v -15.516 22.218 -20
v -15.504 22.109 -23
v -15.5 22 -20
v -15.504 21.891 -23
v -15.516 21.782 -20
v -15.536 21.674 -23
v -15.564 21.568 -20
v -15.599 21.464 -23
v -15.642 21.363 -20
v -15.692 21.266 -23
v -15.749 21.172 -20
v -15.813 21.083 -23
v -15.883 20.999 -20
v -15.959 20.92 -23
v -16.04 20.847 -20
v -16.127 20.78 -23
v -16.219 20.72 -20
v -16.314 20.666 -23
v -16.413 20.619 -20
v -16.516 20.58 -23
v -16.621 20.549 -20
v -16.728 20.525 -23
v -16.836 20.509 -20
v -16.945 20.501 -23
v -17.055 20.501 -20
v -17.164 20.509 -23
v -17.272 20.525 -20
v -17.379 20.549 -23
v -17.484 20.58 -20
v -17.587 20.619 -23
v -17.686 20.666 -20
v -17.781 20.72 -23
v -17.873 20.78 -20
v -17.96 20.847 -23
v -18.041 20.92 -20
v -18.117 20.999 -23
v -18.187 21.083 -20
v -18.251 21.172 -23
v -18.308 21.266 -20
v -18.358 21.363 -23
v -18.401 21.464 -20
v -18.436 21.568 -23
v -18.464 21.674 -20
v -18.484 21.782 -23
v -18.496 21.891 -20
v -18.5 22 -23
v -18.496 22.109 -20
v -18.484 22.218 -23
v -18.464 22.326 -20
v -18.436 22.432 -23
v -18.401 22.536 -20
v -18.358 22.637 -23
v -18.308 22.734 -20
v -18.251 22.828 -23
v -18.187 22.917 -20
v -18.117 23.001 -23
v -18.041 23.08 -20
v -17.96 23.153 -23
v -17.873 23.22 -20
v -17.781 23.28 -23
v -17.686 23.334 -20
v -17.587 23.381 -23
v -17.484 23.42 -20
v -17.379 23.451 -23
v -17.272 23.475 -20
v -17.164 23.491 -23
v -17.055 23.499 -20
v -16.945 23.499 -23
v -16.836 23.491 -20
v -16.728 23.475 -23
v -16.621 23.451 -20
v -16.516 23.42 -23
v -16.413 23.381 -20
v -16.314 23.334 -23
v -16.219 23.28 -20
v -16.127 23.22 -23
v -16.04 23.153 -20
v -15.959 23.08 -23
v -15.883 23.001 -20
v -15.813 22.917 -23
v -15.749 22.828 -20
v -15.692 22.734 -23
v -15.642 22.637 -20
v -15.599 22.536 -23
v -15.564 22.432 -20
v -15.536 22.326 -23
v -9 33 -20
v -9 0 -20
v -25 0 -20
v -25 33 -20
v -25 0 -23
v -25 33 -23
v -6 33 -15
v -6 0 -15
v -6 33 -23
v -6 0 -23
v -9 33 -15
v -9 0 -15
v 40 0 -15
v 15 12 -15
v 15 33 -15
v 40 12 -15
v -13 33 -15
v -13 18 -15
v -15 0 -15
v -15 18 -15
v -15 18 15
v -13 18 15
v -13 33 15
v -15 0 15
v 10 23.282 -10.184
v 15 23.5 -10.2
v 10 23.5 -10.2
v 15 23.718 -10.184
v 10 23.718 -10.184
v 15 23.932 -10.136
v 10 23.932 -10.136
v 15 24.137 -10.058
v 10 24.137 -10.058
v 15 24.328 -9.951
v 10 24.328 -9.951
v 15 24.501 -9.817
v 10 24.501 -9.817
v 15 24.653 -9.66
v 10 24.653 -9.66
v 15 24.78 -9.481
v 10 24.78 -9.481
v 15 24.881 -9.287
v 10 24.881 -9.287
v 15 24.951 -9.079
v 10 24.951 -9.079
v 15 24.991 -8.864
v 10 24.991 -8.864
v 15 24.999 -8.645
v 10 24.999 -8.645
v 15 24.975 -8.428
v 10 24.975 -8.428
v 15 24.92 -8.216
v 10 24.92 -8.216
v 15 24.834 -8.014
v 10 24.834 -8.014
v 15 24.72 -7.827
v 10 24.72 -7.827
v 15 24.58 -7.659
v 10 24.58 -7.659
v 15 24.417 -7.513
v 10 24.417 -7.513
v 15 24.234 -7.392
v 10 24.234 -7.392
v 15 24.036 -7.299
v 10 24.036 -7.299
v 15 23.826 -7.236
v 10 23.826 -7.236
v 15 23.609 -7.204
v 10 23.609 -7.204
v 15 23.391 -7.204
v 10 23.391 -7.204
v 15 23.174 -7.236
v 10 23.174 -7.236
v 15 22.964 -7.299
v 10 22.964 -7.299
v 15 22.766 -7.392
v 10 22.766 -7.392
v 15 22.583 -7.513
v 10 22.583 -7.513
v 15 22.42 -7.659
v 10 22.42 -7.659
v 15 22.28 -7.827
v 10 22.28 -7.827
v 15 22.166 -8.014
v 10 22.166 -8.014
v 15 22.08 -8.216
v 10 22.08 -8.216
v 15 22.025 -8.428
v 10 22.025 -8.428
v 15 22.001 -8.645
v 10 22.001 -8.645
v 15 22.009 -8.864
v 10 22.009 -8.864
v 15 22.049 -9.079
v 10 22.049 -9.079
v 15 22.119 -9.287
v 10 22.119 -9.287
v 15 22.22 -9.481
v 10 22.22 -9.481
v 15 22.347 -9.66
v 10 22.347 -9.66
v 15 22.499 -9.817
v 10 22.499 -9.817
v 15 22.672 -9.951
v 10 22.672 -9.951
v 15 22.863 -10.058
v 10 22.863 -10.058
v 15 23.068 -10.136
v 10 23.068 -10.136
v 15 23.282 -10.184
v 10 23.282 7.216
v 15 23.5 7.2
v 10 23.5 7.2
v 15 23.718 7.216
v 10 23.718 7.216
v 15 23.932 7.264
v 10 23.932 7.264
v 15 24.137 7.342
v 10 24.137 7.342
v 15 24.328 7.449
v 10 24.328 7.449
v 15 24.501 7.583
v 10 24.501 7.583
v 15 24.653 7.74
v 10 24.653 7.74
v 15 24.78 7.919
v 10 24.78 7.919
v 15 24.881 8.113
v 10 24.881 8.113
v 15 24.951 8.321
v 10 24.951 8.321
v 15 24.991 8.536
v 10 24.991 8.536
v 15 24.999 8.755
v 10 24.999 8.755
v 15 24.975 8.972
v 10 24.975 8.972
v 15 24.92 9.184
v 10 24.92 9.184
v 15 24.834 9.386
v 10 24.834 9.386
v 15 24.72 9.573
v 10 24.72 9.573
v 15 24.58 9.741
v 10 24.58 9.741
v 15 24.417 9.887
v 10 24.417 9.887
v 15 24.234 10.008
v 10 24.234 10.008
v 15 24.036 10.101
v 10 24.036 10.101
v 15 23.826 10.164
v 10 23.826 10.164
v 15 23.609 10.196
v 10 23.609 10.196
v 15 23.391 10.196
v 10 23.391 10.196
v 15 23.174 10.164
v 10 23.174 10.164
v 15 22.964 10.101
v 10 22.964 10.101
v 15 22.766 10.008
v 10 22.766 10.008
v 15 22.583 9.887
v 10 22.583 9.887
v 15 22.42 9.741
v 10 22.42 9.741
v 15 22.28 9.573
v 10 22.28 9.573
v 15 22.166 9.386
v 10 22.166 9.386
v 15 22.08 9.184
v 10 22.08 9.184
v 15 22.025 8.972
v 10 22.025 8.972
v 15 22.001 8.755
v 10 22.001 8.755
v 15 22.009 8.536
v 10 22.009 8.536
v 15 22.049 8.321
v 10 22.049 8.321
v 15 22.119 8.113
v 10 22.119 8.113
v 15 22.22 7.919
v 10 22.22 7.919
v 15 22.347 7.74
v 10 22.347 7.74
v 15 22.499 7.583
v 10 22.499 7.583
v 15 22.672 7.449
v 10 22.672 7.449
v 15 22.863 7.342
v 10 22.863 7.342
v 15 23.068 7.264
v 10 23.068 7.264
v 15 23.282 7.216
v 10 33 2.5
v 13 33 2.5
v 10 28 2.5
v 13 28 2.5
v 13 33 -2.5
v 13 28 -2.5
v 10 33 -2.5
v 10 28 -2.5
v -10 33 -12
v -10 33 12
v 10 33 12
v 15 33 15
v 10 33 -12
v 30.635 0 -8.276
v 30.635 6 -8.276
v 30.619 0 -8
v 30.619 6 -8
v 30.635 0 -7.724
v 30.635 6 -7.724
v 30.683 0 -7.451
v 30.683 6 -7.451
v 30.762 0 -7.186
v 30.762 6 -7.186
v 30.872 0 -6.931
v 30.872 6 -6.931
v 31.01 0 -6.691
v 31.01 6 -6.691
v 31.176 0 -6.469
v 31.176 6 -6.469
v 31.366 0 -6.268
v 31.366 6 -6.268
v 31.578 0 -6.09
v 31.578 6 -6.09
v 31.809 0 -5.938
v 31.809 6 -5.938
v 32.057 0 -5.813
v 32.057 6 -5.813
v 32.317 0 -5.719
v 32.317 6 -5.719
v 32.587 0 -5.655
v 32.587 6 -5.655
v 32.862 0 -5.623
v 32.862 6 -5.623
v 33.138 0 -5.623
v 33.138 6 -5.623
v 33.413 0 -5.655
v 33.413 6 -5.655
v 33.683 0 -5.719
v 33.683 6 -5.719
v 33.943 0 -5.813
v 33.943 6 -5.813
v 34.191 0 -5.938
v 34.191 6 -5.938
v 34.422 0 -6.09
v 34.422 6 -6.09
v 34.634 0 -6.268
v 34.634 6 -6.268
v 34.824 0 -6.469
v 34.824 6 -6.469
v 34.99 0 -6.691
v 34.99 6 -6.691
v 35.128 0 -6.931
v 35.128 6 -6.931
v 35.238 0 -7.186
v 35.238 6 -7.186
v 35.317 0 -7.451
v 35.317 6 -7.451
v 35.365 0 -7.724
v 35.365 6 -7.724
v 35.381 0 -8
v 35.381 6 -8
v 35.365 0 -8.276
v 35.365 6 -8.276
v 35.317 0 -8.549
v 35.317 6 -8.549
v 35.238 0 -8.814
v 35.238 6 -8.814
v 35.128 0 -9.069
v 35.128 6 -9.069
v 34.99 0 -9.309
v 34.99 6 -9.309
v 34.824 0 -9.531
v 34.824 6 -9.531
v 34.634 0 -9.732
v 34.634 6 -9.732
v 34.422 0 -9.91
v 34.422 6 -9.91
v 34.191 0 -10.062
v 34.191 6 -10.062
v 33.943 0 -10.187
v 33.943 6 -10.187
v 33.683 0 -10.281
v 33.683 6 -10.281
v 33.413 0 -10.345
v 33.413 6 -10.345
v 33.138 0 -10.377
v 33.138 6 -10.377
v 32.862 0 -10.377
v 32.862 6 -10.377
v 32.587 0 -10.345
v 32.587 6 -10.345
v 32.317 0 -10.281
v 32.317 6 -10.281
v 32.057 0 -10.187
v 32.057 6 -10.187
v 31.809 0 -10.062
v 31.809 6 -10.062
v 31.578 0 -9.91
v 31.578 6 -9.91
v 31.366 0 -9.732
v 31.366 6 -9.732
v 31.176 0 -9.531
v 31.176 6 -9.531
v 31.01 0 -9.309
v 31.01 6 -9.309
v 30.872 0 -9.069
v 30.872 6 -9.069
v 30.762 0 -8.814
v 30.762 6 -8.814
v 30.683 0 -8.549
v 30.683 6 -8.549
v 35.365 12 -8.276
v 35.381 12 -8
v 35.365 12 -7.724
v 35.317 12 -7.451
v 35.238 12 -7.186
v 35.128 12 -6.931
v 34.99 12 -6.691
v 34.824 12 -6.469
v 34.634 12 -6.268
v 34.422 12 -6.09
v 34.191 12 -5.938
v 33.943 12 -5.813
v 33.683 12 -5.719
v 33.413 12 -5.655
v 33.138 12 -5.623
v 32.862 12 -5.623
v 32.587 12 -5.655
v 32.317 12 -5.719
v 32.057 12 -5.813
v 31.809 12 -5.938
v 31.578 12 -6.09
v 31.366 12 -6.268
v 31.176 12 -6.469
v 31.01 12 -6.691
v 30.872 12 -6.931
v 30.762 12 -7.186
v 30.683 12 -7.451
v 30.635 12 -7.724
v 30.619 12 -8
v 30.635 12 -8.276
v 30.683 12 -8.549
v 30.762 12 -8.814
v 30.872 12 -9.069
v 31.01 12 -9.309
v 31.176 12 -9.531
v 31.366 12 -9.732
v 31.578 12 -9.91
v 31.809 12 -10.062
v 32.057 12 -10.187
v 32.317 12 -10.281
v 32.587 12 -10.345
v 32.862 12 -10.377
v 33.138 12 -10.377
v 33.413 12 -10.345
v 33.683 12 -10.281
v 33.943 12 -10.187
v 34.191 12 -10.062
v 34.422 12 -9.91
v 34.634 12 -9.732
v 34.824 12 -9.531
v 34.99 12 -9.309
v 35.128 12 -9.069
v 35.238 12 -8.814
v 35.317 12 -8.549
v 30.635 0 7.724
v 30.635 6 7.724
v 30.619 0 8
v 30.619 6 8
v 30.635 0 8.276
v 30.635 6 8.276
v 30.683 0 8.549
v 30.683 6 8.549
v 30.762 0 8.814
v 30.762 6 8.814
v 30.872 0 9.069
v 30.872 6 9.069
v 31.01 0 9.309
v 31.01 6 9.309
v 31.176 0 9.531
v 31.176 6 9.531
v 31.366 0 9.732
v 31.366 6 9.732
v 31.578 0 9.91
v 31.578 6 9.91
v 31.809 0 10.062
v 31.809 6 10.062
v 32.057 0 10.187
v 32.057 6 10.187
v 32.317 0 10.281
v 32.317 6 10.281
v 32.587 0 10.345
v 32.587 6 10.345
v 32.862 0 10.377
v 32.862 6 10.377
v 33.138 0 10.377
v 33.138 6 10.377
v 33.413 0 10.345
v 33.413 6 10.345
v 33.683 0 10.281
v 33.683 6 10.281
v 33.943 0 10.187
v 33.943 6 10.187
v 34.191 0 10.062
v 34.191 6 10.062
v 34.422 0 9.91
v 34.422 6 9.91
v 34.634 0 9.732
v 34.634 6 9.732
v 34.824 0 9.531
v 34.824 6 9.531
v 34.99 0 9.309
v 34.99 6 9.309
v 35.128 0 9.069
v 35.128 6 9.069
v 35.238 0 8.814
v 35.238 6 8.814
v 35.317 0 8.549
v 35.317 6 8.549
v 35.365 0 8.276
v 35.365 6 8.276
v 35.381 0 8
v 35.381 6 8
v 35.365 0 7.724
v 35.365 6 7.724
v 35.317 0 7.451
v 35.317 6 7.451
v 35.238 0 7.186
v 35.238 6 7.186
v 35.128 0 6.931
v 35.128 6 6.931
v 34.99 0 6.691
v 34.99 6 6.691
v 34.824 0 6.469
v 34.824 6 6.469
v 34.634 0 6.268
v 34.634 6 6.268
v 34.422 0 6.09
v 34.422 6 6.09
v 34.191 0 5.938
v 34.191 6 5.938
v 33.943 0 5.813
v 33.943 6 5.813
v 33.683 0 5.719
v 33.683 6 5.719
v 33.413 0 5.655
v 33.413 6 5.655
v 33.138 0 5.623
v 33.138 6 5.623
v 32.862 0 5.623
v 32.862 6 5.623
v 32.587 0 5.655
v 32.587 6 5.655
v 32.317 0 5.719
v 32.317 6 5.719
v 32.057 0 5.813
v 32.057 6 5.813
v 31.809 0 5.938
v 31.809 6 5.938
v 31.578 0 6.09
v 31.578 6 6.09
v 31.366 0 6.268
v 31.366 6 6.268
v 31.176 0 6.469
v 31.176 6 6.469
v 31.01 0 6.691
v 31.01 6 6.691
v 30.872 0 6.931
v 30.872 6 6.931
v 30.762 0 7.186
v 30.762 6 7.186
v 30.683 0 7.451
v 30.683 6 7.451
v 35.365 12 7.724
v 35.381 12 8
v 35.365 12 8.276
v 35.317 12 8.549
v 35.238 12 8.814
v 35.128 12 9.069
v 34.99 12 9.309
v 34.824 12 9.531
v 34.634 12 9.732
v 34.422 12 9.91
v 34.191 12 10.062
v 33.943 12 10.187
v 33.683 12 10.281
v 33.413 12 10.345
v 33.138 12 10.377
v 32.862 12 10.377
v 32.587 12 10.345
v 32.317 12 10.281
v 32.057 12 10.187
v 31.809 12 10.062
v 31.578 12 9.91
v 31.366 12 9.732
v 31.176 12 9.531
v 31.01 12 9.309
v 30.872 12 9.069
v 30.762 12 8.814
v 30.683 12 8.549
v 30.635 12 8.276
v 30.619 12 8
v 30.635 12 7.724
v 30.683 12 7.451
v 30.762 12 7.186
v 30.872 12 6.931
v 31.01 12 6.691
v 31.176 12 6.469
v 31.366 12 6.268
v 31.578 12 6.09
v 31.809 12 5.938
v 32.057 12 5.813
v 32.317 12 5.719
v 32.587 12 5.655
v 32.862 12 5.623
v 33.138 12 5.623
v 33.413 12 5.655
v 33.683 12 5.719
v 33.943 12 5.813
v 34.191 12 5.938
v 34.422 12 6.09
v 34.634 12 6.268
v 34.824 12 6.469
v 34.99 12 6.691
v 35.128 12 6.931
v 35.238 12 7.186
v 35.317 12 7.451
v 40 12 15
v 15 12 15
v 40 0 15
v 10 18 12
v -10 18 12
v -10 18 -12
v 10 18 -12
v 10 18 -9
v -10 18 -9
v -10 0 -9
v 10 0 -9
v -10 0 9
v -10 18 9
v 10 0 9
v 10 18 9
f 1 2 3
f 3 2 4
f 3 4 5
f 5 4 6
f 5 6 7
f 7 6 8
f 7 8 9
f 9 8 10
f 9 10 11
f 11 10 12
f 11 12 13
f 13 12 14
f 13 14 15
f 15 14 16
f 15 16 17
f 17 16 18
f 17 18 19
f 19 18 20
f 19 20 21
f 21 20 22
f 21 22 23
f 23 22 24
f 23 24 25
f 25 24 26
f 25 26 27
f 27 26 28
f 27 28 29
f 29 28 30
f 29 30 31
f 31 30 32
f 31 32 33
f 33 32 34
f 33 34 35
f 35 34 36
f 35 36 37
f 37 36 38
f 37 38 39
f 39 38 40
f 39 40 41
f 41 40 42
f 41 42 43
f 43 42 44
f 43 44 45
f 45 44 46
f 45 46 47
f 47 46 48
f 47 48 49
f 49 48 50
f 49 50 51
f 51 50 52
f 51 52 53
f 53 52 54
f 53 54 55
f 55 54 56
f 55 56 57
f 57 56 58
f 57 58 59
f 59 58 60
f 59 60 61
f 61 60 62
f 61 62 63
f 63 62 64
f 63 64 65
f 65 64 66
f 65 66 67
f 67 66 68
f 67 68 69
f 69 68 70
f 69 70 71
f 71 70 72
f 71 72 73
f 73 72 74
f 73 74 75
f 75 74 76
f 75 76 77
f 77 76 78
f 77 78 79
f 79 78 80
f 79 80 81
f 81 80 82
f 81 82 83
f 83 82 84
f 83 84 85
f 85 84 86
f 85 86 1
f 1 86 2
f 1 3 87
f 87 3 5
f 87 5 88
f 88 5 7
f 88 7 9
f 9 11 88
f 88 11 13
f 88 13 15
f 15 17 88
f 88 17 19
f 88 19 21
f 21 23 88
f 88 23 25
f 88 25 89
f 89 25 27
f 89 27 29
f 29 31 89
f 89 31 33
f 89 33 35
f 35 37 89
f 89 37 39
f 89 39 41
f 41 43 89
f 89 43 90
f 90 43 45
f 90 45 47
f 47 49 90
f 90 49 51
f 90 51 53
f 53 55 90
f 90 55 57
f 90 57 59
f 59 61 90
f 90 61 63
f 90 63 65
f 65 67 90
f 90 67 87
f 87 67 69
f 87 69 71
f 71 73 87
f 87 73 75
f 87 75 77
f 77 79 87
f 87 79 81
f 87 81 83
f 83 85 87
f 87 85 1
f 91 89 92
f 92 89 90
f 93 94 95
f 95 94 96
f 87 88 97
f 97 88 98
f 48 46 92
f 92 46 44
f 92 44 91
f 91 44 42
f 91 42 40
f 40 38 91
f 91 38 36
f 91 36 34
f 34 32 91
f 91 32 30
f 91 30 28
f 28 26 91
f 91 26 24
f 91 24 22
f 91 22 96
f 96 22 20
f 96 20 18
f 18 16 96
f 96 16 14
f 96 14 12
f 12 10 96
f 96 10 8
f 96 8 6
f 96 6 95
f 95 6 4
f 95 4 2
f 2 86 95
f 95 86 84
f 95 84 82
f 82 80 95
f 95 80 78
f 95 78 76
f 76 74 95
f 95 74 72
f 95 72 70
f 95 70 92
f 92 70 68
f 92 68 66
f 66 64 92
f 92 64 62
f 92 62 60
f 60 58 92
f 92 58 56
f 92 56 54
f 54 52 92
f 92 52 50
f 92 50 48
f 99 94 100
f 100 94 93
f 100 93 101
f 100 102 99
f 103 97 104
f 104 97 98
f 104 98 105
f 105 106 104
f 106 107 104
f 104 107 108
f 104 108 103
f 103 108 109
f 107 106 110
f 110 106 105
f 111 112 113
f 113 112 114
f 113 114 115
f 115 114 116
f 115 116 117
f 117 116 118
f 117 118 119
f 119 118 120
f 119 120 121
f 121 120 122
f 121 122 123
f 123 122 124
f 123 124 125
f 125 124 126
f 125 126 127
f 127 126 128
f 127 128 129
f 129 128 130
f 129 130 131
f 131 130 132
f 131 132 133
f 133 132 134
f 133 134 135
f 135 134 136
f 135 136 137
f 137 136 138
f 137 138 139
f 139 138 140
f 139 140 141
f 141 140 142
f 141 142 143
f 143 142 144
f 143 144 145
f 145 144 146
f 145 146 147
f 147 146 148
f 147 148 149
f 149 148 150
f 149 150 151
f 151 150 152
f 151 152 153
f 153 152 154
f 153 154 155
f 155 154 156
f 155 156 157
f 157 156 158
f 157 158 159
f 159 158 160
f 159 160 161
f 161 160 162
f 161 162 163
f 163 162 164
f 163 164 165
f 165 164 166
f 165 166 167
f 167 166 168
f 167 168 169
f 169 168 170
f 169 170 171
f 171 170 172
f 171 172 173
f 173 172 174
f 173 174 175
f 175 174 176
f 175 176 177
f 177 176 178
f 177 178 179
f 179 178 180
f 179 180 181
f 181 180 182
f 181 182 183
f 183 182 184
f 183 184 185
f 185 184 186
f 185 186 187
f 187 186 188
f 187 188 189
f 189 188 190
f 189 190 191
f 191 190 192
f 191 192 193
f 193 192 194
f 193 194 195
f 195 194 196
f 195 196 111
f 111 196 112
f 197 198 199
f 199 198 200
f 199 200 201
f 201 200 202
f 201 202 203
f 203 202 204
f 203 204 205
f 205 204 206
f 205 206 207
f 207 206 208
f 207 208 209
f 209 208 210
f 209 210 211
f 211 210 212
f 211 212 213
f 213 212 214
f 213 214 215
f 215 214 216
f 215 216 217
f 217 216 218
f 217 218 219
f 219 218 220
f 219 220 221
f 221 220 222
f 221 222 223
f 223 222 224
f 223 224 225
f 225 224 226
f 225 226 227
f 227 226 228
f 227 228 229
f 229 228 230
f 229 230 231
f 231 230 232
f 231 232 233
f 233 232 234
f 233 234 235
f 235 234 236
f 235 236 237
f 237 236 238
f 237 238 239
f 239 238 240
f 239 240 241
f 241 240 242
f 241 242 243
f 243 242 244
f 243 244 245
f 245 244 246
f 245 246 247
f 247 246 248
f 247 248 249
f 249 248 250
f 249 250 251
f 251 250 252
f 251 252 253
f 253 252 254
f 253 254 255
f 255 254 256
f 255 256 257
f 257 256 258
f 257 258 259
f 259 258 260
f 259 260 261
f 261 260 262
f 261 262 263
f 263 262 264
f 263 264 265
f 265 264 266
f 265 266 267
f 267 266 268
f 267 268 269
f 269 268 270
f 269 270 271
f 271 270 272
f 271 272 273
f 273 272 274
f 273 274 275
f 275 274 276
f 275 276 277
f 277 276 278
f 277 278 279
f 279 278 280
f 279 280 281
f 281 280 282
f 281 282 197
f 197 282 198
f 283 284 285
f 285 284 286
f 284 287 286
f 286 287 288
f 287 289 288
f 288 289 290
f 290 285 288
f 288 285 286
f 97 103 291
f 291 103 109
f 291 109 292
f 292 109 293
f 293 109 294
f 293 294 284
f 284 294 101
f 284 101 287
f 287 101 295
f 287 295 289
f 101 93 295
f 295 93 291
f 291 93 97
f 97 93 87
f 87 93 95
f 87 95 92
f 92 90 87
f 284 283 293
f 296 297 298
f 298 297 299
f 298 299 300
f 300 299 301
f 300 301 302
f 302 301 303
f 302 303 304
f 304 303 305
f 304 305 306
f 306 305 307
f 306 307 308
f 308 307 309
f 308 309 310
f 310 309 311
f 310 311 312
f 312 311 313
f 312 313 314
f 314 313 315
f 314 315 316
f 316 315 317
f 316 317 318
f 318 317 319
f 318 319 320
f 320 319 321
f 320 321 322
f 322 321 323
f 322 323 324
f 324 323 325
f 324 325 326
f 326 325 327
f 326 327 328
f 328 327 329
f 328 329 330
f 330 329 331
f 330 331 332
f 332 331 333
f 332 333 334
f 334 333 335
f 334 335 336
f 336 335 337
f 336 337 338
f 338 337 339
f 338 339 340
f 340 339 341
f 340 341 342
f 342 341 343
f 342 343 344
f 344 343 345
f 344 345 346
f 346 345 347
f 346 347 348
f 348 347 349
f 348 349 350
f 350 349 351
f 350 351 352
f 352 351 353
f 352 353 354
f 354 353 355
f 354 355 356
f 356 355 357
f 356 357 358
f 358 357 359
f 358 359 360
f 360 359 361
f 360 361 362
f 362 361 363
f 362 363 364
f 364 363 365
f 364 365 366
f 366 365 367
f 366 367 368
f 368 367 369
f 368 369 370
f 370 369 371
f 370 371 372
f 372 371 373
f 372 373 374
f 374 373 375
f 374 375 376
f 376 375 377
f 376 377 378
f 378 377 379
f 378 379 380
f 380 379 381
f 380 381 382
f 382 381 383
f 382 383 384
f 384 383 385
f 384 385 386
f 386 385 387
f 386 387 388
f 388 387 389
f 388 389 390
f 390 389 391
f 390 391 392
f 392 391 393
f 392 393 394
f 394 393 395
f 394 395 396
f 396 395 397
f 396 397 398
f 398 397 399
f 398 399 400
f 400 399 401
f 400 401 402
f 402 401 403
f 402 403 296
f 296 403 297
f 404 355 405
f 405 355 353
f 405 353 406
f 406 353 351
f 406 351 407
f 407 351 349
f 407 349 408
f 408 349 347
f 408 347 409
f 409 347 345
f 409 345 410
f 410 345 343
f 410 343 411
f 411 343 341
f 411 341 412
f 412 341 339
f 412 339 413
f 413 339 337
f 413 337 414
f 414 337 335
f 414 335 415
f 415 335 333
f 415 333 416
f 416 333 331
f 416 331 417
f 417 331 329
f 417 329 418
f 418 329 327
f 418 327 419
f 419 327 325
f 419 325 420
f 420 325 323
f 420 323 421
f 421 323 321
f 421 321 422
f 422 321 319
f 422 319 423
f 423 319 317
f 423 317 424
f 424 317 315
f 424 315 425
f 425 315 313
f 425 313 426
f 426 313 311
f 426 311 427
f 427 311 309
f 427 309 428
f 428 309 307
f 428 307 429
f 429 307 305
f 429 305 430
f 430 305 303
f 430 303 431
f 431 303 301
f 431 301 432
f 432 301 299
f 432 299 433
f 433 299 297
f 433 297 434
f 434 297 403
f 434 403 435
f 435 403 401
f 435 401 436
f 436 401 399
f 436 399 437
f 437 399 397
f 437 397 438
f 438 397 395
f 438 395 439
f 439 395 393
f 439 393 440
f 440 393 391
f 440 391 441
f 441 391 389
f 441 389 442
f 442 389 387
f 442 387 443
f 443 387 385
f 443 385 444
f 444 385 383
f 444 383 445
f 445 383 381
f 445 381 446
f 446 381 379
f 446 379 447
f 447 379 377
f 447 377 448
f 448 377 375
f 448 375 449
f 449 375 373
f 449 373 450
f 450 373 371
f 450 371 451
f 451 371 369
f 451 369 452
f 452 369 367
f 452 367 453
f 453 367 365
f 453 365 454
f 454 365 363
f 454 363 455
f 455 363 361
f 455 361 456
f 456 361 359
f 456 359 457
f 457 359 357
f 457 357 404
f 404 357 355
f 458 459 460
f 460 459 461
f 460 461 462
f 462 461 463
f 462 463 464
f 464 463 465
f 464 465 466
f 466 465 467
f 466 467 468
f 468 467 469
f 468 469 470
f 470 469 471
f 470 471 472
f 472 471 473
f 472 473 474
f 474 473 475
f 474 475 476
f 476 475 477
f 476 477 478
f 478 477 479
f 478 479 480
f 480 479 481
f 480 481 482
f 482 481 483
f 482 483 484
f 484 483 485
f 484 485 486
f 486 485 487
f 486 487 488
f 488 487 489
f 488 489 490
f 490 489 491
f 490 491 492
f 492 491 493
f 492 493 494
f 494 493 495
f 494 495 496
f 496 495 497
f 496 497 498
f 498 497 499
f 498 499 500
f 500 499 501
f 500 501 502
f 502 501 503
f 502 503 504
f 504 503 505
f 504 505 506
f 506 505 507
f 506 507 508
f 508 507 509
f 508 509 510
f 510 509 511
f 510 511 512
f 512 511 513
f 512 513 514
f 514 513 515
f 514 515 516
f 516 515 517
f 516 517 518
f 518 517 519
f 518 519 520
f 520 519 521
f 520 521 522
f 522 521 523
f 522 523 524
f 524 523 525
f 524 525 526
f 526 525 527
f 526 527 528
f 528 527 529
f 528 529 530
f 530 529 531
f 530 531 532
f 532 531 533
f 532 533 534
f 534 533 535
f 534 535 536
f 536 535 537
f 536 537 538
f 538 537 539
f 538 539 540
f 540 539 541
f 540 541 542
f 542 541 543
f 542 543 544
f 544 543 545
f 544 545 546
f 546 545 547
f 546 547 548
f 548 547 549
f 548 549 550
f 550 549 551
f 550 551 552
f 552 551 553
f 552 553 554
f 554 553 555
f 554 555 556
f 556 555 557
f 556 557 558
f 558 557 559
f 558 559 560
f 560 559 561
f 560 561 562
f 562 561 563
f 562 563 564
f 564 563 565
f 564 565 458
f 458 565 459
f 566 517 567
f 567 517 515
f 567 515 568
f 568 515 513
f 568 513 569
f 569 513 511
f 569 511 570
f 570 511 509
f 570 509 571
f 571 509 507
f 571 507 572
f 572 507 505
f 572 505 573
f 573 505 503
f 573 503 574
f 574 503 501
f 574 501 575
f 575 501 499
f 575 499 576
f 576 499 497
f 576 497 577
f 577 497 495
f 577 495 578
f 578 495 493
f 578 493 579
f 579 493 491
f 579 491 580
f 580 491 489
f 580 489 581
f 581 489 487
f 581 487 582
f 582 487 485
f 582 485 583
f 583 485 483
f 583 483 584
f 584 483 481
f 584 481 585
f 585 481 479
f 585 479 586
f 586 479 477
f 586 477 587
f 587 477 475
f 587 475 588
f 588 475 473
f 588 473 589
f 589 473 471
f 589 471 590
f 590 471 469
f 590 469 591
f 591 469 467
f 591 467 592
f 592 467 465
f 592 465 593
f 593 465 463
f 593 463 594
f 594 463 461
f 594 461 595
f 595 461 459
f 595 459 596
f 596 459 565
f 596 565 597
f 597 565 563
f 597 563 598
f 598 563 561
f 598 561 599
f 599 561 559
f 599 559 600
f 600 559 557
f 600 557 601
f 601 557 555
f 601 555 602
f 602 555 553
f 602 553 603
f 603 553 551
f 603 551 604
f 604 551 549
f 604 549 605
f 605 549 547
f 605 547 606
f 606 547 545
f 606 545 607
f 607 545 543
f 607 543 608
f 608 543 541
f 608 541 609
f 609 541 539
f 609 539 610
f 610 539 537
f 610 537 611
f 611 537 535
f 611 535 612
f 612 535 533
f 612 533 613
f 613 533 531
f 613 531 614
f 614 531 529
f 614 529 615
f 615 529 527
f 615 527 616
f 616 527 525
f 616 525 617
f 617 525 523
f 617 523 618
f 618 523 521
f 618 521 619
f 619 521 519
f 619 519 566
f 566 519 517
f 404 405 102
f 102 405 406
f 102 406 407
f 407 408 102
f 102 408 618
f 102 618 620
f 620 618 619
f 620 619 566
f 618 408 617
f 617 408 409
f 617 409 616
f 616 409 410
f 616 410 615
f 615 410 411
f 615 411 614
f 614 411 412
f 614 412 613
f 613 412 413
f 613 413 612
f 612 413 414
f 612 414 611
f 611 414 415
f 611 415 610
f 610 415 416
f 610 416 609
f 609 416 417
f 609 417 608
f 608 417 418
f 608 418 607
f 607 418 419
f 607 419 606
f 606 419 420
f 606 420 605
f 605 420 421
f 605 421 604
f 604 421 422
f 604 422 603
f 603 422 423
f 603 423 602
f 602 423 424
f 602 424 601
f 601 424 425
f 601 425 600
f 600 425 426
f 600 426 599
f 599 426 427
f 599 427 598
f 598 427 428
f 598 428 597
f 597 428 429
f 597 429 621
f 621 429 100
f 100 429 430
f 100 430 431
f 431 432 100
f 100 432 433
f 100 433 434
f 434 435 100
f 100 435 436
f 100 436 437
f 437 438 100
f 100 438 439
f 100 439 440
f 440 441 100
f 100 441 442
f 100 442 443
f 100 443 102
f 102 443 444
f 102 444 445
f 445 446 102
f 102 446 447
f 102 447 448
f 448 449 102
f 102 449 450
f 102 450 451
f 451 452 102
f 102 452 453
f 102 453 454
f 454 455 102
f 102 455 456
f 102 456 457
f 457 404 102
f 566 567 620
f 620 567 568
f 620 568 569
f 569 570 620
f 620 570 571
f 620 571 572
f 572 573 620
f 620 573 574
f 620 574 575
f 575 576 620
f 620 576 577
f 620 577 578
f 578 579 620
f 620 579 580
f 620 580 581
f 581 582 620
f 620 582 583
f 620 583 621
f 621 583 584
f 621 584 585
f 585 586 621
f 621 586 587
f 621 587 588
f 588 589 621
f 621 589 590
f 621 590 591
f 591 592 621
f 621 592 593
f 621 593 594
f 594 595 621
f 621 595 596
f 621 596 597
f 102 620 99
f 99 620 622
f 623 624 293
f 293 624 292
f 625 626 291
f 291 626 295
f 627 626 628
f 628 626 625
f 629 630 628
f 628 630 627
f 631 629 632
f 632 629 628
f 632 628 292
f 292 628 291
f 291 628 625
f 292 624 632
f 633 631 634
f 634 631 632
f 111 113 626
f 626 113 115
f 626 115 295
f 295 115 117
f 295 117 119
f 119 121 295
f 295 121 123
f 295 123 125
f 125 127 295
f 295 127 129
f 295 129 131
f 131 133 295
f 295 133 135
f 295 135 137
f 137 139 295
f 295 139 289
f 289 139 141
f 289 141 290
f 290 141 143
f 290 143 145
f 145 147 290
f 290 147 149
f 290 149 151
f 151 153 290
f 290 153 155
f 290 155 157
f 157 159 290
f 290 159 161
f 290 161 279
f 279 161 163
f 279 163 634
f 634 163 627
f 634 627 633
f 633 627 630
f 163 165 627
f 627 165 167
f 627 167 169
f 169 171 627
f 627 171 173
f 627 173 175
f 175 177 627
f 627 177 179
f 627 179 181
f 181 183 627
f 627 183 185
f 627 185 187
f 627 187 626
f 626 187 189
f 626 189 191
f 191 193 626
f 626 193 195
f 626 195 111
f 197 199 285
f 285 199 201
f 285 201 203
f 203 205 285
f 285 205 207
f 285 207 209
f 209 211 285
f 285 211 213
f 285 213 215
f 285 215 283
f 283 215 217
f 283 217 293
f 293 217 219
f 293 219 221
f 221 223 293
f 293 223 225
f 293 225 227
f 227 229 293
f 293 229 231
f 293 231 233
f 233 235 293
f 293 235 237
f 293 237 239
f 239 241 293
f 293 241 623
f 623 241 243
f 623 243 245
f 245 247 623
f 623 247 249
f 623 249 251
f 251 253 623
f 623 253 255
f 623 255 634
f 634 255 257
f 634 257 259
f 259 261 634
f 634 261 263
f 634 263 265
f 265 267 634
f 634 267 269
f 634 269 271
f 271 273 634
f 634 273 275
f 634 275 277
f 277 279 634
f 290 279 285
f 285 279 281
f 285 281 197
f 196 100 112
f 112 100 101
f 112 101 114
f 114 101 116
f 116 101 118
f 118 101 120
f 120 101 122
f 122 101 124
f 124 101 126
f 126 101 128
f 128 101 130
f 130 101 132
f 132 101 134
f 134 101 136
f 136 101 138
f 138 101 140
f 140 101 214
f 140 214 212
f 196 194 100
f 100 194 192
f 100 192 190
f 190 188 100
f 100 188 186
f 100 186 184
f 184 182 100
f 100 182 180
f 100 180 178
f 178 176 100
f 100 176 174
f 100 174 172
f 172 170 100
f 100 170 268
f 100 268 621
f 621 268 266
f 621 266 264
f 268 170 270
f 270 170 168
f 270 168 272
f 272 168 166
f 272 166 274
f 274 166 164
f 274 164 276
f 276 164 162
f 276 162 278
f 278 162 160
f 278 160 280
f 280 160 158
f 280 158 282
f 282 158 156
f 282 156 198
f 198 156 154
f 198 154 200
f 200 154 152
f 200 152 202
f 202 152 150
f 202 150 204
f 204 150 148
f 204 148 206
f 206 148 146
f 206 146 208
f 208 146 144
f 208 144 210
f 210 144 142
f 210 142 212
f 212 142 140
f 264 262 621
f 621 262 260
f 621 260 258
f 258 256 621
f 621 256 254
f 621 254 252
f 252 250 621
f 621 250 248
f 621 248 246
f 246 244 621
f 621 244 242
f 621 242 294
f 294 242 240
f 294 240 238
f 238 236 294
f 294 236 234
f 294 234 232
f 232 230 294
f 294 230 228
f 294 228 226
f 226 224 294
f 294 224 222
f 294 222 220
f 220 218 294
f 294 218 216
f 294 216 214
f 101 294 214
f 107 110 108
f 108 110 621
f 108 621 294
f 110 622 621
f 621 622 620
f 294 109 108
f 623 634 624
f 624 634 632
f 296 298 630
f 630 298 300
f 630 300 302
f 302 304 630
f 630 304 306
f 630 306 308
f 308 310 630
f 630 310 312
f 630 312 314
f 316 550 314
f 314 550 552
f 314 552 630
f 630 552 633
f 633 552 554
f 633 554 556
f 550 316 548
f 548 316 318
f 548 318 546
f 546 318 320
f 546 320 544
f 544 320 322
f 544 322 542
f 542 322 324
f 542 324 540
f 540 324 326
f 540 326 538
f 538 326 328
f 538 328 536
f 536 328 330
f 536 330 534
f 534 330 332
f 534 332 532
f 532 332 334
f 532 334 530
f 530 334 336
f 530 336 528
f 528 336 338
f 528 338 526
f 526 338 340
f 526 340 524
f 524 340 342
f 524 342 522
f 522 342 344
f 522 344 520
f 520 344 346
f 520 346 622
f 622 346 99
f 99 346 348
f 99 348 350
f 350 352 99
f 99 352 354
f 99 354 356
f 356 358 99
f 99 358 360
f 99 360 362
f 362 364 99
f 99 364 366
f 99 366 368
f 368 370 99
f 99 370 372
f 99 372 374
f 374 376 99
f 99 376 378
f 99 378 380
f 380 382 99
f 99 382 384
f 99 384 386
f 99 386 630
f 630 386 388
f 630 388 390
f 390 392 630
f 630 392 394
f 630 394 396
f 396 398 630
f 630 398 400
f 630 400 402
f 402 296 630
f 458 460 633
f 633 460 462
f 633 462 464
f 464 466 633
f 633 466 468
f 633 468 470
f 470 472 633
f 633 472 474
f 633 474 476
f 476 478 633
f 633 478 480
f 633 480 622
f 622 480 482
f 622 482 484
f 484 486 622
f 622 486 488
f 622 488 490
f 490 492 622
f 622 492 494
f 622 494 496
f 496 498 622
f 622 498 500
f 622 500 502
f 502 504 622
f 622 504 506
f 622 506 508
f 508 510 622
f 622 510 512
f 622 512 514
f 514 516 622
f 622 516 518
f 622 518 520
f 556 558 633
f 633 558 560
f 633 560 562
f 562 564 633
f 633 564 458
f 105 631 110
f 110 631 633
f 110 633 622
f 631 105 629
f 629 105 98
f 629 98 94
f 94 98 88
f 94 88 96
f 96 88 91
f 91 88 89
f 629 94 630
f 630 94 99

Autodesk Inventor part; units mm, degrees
ref_plane "YZ Plane" through (0, 0, 0) normal (1, 0, 0) x (0, 1, 0)
ref_plane "XZ Plane" through (0, 0, 0) normal (0, 1, 0) x (-1, 0, 0)
ref_plane "XY Plane" through (0, 0, 0) normal (0, 0, 1) x (1, 0, 0)
sketch "Boceto1" plane through (0, 0, 0) normal (0, 1, 0) x (-1, 0, 0)
  line L0 (-10, -9) -> (10, -9)
  line L1 (10, -9) -> (10, 9)
  line L2 (10, 9) -> (-10, 9)
  line L3 (-10, 9) -> (-10, -9)
  line L4 (-10, -9) -> (10, 9) construction
  line L5 (10, -9) -> (-10, 9) construction
  line L6 (-15, -15) -> (15, -15)
  line L7 (15, -15) -> (15, 15)
  line L8 (15, 15) -> (-15, 15)
  line L9 (-15, 15) -> (-15, -15)
  line L10 (-15, -15) -> (15, 15) construction
  line L11 (15, -15) -> (-15, 15) construction
  point P0 (0, 0)
  dimension "d0" = 20
  dimension "d1" = 18
  dimension "d2" = 30
  dimension "d3" = 30
extrude "Extrusión1" add sketch "Boceto1" along normal blind 18
sketch "Boceto2" plane through (0, 18, 0) normal (0, 1, 0) x (1, 0, 0)
  line L0 (10, 12) -> (-10, 12)
  line L1 (-10, 12) -> (-10, -12)
  line L2 (-10, -12) -> (10, -12)
  line L3 (10, -12) -> (10, 12)
  line L4 (10, 12) -> (-10, -12) construction
  line L5 (-10, 12) -> (10, -12) construction
  line L6 (-15, 15) -> (-15, -15) projected
  line L7 (-15, -15) -> (15, -15) projected
  line L8 (15, -15) -> (15, 15) projected
  line L9 (15, 15) -> (-15, 15) projected
  line L10 (10, 9) -> (10, -9) projected
  line L11 (10, -9) -> (-10, -9) projected
  line L12 (-10, -9) -> (-10, 9) projected
  line L13 (-10, 9) -> (10, 9) projected
  point P0 (0, 0)
  dimension "d6" = 20
  dimension "d7" = 24
extrude "Extrusión2" add sketch "Boceto2" along normal blind 15
sketch "Boceto4" plane through (15, 0, 15) normal (1, 0, 0) x (0, 0, -1)
  line L0 (30, 0) -> (30, 33) projected
  line L1 (0, 0) -> (0, 33) projected
  line L2 (30, 0) -> (0, 0)
  line L3 (0, 0) -> (0, 12)
  line L4 (0, 12) -> (30, 12)
  line L5 (30, 12) -> (30, 0)
  point P0 (15, 0)
  dimension "d13" = 12
extrude "Extrusión4" add sketch "Boceto4" along normal blind 25
sketch "Boceto5" plane through (15, 12, 15) normal (0, 1, 0) x (1, 0, 0)
  circle A0 centre (18, 7) radius 2.35
  circle A1 centre (18, 23) radius 2.35
  line L0 (25, 30) -> (25, 0) projected
  line L1 (0, 0) -> (25, 0) projected
  line L2 (0, 30) -> (25, 30) projected
  point P0 (-15, 15)
  dimension "d16" = 4.7
  dimension "d17" = 4.7
  dimension "d18" = 7
  dimension "d19" = 7
  dimension "d20" = 7
  dimension "d21" = 7
extrude "Extrusión5" cut sketch "Boceto5" against normal through all
sketch "Boceto6" plane through (0, 33, 0) normal (0, 1, 0) x (1, 0, 0)
  line L0 (10, 9) -> (10, -9) projected
  line L1 (10, -2.5) -> (13, -2.5)
  line L2 (13, -2.5) -> (13, 2.5)
  line L3 (13, 2.5) -> (10, 2.5)
  line L4 (10, 2.5) -> (10, -2.5)
  point P0 (0, 0)
  point P1 (10, 0)
  dimension "d24" = 5
  dimension "d25" = 3
extrude "Extrusión6" cut sketch "Boceto6" against normal blind 5
sketch "Boceto7" plane through (15, 33, 15) normal (1, 0, 0) x (0, 0, -1)
  circle A0 centre (6.3, -9.5) radius 1.475
  circle A1 centre (23.7, -9.5) radius 1.475
  line L0 (30, -21) -> (0, -21) projected
  line L1 (0, -21) -> (0, 0) projected
  line L2 (30, -21) -> (30, 0) projected
  line L3 (6.3, -9.5) -> (23.7, -9.5)
  line L4 (0, -33) -> (30, -33) projected
  point P0 (15, -33)
  point P1 (15, -9.5)
  point P2 (15, -33)
  dimension "d28" = 2.95
  dimension "d30" = 11.5
  dimension "d32" = 11.5
  dimension "d34" = 17.4
extrude "Extrusión7" cut sketch "Boceto7" against normal blind 5
sketch "Boceto8" plane through (-15, 0, -15) normal (-1, 0, 0) x (0, 0, 1)
  line L0 (0, 33) -> (30, 33) projected
  line L1 (30, 12) -> (30, 33) projected
  line L2 (0, 33) -> (30, 33)
  line L3 (30, 33) -> (30, 18)
  line L4 (30, 18) -> (0, 18)
  line L5 (0, 18) -> (0, 33)
  point P0 (15, 0)
  dimension "d43" = 15
extrude "Extrusión8" cut sketch "Boceto8" against normal blind 2
sketch "Boceto9" plane through (40, 0, -15) normal (0, 0, -1) x (-1, 0, 0)
  line L0 (50, 33) -> (30, 33) projected
  line L1 (46, 33) -> (49, 33)
  line L2 (49, 33) -> (49, 0)
  line L3 (49, 0) -> (46, 0)
  line L4 (46, 0) -> (46, 33)
  line L5 (53, 18) -> (53, 33) projected
  point P0 (40, 0)
  dimension "d46" = 3
  dimension "d47" = 4
extrude "Extrusión9" add sketch "Boceto9" along normal blind 8
sketch "Boceto10" plane through (-9, 0, -15) normal (-1, 0, 0) x (0, 0, 1)
  line L0 (0, 33) -> (-8, 33) projected
  line L1 (0, 0) -> (-8, 0) projected
  line L2 (-8, 33) -> (-5, 33)
  line L3 (-5, 33) -> (-5, 0)
  line L4 (-5, 0) -> (-8, 0)
  line L5 (-8, 0) -> (-8, 33)
  point P0 (15, 0)
  point P1 (-8, 0)
  dimension "d50" = 3
extrude "Extrusión10" add sketch "Boceto10" along normal blind 16
sketch "Boceto11" plane through (40, 0, -23) normal (0, 0, -1) x (-1, 0, 0)
  circle A0 centre (57, 22) radius 1.475
  line L0 (46, 33) -> (65, 33) projected
  line L1 (46, 33) -> (46, 0) projected
  point P0 (40, 0)
  dimension "d53" = 2.95
  dimension "d54" = 11
  dimension "d55" = 11
extrude "Extrusión11" cut sketch "Boceto11" against normal up to surface (3 mm away)
properties part number "Soporte_motor"
